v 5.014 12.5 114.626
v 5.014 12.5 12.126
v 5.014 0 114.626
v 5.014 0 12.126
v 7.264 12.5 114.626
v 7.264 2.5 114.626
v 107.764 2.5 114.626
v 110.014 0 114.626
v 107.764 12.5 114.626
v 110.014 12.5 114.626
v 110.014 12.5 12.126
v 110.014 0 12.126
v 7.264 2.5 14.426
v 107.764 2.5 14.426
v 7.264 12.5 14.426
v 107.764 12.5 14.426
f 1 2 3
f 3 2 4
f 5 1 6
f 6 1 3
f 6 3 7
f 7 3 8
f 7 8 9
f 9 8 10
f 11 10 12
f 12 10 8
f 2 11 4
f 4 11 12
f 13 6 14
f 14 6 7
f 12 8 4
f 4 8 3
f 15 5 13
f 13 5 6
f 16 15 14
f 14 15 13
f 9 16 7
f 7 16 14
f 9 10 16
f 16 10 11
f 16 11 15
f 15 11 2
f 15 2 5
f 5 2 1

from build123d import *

# Parameters (mm, degrees)
SKETCH_1_W      = 105
SKETCH_1_H      = 102.5
EXTRUDE_1_DEPTH = 2.5
EXTRUDE_2_DEPTH = 10


with BuildPart() as part:
    # Эскиз1 → Бобышка-Вытянуть1 (new body)
    with BuildSketch(Plane(origin=(0, 0, 0), x_dir=(1, 0, 0), z_dir=(0, 1, 0))):
        with Locations((57.513799089, -63.375984423)):
            Rectangle(SKETCH_1_W, SKETCH_1_H)
    extrude(amount=EXTRUDE_1_DEPTH)

    # Эскиз2 → Бобышка-Вытянуть2 (add)
    with BuildSketch(Plane(origin=(0, 2.5, 0), x_dir=(1, 0, 0), z_dir=(0, 1, 0))):
        Polygon((5.013799089, -12.125984423), (110.013799089, -12.125984423), (110.013799089, -114.625984423), (107.763799089, -114.625984423), (107.763799089, -112.909428801), (107.763799089, -14.425984423), (7.263799089, -14.425984423), (7.263799089, -112.909428801), (7.263799089, -114.625984423), (5.013799089, -114.625984423), align=None)
    extrude(amount=EXTRUDE_2_DEPTH)


solid = part.part
